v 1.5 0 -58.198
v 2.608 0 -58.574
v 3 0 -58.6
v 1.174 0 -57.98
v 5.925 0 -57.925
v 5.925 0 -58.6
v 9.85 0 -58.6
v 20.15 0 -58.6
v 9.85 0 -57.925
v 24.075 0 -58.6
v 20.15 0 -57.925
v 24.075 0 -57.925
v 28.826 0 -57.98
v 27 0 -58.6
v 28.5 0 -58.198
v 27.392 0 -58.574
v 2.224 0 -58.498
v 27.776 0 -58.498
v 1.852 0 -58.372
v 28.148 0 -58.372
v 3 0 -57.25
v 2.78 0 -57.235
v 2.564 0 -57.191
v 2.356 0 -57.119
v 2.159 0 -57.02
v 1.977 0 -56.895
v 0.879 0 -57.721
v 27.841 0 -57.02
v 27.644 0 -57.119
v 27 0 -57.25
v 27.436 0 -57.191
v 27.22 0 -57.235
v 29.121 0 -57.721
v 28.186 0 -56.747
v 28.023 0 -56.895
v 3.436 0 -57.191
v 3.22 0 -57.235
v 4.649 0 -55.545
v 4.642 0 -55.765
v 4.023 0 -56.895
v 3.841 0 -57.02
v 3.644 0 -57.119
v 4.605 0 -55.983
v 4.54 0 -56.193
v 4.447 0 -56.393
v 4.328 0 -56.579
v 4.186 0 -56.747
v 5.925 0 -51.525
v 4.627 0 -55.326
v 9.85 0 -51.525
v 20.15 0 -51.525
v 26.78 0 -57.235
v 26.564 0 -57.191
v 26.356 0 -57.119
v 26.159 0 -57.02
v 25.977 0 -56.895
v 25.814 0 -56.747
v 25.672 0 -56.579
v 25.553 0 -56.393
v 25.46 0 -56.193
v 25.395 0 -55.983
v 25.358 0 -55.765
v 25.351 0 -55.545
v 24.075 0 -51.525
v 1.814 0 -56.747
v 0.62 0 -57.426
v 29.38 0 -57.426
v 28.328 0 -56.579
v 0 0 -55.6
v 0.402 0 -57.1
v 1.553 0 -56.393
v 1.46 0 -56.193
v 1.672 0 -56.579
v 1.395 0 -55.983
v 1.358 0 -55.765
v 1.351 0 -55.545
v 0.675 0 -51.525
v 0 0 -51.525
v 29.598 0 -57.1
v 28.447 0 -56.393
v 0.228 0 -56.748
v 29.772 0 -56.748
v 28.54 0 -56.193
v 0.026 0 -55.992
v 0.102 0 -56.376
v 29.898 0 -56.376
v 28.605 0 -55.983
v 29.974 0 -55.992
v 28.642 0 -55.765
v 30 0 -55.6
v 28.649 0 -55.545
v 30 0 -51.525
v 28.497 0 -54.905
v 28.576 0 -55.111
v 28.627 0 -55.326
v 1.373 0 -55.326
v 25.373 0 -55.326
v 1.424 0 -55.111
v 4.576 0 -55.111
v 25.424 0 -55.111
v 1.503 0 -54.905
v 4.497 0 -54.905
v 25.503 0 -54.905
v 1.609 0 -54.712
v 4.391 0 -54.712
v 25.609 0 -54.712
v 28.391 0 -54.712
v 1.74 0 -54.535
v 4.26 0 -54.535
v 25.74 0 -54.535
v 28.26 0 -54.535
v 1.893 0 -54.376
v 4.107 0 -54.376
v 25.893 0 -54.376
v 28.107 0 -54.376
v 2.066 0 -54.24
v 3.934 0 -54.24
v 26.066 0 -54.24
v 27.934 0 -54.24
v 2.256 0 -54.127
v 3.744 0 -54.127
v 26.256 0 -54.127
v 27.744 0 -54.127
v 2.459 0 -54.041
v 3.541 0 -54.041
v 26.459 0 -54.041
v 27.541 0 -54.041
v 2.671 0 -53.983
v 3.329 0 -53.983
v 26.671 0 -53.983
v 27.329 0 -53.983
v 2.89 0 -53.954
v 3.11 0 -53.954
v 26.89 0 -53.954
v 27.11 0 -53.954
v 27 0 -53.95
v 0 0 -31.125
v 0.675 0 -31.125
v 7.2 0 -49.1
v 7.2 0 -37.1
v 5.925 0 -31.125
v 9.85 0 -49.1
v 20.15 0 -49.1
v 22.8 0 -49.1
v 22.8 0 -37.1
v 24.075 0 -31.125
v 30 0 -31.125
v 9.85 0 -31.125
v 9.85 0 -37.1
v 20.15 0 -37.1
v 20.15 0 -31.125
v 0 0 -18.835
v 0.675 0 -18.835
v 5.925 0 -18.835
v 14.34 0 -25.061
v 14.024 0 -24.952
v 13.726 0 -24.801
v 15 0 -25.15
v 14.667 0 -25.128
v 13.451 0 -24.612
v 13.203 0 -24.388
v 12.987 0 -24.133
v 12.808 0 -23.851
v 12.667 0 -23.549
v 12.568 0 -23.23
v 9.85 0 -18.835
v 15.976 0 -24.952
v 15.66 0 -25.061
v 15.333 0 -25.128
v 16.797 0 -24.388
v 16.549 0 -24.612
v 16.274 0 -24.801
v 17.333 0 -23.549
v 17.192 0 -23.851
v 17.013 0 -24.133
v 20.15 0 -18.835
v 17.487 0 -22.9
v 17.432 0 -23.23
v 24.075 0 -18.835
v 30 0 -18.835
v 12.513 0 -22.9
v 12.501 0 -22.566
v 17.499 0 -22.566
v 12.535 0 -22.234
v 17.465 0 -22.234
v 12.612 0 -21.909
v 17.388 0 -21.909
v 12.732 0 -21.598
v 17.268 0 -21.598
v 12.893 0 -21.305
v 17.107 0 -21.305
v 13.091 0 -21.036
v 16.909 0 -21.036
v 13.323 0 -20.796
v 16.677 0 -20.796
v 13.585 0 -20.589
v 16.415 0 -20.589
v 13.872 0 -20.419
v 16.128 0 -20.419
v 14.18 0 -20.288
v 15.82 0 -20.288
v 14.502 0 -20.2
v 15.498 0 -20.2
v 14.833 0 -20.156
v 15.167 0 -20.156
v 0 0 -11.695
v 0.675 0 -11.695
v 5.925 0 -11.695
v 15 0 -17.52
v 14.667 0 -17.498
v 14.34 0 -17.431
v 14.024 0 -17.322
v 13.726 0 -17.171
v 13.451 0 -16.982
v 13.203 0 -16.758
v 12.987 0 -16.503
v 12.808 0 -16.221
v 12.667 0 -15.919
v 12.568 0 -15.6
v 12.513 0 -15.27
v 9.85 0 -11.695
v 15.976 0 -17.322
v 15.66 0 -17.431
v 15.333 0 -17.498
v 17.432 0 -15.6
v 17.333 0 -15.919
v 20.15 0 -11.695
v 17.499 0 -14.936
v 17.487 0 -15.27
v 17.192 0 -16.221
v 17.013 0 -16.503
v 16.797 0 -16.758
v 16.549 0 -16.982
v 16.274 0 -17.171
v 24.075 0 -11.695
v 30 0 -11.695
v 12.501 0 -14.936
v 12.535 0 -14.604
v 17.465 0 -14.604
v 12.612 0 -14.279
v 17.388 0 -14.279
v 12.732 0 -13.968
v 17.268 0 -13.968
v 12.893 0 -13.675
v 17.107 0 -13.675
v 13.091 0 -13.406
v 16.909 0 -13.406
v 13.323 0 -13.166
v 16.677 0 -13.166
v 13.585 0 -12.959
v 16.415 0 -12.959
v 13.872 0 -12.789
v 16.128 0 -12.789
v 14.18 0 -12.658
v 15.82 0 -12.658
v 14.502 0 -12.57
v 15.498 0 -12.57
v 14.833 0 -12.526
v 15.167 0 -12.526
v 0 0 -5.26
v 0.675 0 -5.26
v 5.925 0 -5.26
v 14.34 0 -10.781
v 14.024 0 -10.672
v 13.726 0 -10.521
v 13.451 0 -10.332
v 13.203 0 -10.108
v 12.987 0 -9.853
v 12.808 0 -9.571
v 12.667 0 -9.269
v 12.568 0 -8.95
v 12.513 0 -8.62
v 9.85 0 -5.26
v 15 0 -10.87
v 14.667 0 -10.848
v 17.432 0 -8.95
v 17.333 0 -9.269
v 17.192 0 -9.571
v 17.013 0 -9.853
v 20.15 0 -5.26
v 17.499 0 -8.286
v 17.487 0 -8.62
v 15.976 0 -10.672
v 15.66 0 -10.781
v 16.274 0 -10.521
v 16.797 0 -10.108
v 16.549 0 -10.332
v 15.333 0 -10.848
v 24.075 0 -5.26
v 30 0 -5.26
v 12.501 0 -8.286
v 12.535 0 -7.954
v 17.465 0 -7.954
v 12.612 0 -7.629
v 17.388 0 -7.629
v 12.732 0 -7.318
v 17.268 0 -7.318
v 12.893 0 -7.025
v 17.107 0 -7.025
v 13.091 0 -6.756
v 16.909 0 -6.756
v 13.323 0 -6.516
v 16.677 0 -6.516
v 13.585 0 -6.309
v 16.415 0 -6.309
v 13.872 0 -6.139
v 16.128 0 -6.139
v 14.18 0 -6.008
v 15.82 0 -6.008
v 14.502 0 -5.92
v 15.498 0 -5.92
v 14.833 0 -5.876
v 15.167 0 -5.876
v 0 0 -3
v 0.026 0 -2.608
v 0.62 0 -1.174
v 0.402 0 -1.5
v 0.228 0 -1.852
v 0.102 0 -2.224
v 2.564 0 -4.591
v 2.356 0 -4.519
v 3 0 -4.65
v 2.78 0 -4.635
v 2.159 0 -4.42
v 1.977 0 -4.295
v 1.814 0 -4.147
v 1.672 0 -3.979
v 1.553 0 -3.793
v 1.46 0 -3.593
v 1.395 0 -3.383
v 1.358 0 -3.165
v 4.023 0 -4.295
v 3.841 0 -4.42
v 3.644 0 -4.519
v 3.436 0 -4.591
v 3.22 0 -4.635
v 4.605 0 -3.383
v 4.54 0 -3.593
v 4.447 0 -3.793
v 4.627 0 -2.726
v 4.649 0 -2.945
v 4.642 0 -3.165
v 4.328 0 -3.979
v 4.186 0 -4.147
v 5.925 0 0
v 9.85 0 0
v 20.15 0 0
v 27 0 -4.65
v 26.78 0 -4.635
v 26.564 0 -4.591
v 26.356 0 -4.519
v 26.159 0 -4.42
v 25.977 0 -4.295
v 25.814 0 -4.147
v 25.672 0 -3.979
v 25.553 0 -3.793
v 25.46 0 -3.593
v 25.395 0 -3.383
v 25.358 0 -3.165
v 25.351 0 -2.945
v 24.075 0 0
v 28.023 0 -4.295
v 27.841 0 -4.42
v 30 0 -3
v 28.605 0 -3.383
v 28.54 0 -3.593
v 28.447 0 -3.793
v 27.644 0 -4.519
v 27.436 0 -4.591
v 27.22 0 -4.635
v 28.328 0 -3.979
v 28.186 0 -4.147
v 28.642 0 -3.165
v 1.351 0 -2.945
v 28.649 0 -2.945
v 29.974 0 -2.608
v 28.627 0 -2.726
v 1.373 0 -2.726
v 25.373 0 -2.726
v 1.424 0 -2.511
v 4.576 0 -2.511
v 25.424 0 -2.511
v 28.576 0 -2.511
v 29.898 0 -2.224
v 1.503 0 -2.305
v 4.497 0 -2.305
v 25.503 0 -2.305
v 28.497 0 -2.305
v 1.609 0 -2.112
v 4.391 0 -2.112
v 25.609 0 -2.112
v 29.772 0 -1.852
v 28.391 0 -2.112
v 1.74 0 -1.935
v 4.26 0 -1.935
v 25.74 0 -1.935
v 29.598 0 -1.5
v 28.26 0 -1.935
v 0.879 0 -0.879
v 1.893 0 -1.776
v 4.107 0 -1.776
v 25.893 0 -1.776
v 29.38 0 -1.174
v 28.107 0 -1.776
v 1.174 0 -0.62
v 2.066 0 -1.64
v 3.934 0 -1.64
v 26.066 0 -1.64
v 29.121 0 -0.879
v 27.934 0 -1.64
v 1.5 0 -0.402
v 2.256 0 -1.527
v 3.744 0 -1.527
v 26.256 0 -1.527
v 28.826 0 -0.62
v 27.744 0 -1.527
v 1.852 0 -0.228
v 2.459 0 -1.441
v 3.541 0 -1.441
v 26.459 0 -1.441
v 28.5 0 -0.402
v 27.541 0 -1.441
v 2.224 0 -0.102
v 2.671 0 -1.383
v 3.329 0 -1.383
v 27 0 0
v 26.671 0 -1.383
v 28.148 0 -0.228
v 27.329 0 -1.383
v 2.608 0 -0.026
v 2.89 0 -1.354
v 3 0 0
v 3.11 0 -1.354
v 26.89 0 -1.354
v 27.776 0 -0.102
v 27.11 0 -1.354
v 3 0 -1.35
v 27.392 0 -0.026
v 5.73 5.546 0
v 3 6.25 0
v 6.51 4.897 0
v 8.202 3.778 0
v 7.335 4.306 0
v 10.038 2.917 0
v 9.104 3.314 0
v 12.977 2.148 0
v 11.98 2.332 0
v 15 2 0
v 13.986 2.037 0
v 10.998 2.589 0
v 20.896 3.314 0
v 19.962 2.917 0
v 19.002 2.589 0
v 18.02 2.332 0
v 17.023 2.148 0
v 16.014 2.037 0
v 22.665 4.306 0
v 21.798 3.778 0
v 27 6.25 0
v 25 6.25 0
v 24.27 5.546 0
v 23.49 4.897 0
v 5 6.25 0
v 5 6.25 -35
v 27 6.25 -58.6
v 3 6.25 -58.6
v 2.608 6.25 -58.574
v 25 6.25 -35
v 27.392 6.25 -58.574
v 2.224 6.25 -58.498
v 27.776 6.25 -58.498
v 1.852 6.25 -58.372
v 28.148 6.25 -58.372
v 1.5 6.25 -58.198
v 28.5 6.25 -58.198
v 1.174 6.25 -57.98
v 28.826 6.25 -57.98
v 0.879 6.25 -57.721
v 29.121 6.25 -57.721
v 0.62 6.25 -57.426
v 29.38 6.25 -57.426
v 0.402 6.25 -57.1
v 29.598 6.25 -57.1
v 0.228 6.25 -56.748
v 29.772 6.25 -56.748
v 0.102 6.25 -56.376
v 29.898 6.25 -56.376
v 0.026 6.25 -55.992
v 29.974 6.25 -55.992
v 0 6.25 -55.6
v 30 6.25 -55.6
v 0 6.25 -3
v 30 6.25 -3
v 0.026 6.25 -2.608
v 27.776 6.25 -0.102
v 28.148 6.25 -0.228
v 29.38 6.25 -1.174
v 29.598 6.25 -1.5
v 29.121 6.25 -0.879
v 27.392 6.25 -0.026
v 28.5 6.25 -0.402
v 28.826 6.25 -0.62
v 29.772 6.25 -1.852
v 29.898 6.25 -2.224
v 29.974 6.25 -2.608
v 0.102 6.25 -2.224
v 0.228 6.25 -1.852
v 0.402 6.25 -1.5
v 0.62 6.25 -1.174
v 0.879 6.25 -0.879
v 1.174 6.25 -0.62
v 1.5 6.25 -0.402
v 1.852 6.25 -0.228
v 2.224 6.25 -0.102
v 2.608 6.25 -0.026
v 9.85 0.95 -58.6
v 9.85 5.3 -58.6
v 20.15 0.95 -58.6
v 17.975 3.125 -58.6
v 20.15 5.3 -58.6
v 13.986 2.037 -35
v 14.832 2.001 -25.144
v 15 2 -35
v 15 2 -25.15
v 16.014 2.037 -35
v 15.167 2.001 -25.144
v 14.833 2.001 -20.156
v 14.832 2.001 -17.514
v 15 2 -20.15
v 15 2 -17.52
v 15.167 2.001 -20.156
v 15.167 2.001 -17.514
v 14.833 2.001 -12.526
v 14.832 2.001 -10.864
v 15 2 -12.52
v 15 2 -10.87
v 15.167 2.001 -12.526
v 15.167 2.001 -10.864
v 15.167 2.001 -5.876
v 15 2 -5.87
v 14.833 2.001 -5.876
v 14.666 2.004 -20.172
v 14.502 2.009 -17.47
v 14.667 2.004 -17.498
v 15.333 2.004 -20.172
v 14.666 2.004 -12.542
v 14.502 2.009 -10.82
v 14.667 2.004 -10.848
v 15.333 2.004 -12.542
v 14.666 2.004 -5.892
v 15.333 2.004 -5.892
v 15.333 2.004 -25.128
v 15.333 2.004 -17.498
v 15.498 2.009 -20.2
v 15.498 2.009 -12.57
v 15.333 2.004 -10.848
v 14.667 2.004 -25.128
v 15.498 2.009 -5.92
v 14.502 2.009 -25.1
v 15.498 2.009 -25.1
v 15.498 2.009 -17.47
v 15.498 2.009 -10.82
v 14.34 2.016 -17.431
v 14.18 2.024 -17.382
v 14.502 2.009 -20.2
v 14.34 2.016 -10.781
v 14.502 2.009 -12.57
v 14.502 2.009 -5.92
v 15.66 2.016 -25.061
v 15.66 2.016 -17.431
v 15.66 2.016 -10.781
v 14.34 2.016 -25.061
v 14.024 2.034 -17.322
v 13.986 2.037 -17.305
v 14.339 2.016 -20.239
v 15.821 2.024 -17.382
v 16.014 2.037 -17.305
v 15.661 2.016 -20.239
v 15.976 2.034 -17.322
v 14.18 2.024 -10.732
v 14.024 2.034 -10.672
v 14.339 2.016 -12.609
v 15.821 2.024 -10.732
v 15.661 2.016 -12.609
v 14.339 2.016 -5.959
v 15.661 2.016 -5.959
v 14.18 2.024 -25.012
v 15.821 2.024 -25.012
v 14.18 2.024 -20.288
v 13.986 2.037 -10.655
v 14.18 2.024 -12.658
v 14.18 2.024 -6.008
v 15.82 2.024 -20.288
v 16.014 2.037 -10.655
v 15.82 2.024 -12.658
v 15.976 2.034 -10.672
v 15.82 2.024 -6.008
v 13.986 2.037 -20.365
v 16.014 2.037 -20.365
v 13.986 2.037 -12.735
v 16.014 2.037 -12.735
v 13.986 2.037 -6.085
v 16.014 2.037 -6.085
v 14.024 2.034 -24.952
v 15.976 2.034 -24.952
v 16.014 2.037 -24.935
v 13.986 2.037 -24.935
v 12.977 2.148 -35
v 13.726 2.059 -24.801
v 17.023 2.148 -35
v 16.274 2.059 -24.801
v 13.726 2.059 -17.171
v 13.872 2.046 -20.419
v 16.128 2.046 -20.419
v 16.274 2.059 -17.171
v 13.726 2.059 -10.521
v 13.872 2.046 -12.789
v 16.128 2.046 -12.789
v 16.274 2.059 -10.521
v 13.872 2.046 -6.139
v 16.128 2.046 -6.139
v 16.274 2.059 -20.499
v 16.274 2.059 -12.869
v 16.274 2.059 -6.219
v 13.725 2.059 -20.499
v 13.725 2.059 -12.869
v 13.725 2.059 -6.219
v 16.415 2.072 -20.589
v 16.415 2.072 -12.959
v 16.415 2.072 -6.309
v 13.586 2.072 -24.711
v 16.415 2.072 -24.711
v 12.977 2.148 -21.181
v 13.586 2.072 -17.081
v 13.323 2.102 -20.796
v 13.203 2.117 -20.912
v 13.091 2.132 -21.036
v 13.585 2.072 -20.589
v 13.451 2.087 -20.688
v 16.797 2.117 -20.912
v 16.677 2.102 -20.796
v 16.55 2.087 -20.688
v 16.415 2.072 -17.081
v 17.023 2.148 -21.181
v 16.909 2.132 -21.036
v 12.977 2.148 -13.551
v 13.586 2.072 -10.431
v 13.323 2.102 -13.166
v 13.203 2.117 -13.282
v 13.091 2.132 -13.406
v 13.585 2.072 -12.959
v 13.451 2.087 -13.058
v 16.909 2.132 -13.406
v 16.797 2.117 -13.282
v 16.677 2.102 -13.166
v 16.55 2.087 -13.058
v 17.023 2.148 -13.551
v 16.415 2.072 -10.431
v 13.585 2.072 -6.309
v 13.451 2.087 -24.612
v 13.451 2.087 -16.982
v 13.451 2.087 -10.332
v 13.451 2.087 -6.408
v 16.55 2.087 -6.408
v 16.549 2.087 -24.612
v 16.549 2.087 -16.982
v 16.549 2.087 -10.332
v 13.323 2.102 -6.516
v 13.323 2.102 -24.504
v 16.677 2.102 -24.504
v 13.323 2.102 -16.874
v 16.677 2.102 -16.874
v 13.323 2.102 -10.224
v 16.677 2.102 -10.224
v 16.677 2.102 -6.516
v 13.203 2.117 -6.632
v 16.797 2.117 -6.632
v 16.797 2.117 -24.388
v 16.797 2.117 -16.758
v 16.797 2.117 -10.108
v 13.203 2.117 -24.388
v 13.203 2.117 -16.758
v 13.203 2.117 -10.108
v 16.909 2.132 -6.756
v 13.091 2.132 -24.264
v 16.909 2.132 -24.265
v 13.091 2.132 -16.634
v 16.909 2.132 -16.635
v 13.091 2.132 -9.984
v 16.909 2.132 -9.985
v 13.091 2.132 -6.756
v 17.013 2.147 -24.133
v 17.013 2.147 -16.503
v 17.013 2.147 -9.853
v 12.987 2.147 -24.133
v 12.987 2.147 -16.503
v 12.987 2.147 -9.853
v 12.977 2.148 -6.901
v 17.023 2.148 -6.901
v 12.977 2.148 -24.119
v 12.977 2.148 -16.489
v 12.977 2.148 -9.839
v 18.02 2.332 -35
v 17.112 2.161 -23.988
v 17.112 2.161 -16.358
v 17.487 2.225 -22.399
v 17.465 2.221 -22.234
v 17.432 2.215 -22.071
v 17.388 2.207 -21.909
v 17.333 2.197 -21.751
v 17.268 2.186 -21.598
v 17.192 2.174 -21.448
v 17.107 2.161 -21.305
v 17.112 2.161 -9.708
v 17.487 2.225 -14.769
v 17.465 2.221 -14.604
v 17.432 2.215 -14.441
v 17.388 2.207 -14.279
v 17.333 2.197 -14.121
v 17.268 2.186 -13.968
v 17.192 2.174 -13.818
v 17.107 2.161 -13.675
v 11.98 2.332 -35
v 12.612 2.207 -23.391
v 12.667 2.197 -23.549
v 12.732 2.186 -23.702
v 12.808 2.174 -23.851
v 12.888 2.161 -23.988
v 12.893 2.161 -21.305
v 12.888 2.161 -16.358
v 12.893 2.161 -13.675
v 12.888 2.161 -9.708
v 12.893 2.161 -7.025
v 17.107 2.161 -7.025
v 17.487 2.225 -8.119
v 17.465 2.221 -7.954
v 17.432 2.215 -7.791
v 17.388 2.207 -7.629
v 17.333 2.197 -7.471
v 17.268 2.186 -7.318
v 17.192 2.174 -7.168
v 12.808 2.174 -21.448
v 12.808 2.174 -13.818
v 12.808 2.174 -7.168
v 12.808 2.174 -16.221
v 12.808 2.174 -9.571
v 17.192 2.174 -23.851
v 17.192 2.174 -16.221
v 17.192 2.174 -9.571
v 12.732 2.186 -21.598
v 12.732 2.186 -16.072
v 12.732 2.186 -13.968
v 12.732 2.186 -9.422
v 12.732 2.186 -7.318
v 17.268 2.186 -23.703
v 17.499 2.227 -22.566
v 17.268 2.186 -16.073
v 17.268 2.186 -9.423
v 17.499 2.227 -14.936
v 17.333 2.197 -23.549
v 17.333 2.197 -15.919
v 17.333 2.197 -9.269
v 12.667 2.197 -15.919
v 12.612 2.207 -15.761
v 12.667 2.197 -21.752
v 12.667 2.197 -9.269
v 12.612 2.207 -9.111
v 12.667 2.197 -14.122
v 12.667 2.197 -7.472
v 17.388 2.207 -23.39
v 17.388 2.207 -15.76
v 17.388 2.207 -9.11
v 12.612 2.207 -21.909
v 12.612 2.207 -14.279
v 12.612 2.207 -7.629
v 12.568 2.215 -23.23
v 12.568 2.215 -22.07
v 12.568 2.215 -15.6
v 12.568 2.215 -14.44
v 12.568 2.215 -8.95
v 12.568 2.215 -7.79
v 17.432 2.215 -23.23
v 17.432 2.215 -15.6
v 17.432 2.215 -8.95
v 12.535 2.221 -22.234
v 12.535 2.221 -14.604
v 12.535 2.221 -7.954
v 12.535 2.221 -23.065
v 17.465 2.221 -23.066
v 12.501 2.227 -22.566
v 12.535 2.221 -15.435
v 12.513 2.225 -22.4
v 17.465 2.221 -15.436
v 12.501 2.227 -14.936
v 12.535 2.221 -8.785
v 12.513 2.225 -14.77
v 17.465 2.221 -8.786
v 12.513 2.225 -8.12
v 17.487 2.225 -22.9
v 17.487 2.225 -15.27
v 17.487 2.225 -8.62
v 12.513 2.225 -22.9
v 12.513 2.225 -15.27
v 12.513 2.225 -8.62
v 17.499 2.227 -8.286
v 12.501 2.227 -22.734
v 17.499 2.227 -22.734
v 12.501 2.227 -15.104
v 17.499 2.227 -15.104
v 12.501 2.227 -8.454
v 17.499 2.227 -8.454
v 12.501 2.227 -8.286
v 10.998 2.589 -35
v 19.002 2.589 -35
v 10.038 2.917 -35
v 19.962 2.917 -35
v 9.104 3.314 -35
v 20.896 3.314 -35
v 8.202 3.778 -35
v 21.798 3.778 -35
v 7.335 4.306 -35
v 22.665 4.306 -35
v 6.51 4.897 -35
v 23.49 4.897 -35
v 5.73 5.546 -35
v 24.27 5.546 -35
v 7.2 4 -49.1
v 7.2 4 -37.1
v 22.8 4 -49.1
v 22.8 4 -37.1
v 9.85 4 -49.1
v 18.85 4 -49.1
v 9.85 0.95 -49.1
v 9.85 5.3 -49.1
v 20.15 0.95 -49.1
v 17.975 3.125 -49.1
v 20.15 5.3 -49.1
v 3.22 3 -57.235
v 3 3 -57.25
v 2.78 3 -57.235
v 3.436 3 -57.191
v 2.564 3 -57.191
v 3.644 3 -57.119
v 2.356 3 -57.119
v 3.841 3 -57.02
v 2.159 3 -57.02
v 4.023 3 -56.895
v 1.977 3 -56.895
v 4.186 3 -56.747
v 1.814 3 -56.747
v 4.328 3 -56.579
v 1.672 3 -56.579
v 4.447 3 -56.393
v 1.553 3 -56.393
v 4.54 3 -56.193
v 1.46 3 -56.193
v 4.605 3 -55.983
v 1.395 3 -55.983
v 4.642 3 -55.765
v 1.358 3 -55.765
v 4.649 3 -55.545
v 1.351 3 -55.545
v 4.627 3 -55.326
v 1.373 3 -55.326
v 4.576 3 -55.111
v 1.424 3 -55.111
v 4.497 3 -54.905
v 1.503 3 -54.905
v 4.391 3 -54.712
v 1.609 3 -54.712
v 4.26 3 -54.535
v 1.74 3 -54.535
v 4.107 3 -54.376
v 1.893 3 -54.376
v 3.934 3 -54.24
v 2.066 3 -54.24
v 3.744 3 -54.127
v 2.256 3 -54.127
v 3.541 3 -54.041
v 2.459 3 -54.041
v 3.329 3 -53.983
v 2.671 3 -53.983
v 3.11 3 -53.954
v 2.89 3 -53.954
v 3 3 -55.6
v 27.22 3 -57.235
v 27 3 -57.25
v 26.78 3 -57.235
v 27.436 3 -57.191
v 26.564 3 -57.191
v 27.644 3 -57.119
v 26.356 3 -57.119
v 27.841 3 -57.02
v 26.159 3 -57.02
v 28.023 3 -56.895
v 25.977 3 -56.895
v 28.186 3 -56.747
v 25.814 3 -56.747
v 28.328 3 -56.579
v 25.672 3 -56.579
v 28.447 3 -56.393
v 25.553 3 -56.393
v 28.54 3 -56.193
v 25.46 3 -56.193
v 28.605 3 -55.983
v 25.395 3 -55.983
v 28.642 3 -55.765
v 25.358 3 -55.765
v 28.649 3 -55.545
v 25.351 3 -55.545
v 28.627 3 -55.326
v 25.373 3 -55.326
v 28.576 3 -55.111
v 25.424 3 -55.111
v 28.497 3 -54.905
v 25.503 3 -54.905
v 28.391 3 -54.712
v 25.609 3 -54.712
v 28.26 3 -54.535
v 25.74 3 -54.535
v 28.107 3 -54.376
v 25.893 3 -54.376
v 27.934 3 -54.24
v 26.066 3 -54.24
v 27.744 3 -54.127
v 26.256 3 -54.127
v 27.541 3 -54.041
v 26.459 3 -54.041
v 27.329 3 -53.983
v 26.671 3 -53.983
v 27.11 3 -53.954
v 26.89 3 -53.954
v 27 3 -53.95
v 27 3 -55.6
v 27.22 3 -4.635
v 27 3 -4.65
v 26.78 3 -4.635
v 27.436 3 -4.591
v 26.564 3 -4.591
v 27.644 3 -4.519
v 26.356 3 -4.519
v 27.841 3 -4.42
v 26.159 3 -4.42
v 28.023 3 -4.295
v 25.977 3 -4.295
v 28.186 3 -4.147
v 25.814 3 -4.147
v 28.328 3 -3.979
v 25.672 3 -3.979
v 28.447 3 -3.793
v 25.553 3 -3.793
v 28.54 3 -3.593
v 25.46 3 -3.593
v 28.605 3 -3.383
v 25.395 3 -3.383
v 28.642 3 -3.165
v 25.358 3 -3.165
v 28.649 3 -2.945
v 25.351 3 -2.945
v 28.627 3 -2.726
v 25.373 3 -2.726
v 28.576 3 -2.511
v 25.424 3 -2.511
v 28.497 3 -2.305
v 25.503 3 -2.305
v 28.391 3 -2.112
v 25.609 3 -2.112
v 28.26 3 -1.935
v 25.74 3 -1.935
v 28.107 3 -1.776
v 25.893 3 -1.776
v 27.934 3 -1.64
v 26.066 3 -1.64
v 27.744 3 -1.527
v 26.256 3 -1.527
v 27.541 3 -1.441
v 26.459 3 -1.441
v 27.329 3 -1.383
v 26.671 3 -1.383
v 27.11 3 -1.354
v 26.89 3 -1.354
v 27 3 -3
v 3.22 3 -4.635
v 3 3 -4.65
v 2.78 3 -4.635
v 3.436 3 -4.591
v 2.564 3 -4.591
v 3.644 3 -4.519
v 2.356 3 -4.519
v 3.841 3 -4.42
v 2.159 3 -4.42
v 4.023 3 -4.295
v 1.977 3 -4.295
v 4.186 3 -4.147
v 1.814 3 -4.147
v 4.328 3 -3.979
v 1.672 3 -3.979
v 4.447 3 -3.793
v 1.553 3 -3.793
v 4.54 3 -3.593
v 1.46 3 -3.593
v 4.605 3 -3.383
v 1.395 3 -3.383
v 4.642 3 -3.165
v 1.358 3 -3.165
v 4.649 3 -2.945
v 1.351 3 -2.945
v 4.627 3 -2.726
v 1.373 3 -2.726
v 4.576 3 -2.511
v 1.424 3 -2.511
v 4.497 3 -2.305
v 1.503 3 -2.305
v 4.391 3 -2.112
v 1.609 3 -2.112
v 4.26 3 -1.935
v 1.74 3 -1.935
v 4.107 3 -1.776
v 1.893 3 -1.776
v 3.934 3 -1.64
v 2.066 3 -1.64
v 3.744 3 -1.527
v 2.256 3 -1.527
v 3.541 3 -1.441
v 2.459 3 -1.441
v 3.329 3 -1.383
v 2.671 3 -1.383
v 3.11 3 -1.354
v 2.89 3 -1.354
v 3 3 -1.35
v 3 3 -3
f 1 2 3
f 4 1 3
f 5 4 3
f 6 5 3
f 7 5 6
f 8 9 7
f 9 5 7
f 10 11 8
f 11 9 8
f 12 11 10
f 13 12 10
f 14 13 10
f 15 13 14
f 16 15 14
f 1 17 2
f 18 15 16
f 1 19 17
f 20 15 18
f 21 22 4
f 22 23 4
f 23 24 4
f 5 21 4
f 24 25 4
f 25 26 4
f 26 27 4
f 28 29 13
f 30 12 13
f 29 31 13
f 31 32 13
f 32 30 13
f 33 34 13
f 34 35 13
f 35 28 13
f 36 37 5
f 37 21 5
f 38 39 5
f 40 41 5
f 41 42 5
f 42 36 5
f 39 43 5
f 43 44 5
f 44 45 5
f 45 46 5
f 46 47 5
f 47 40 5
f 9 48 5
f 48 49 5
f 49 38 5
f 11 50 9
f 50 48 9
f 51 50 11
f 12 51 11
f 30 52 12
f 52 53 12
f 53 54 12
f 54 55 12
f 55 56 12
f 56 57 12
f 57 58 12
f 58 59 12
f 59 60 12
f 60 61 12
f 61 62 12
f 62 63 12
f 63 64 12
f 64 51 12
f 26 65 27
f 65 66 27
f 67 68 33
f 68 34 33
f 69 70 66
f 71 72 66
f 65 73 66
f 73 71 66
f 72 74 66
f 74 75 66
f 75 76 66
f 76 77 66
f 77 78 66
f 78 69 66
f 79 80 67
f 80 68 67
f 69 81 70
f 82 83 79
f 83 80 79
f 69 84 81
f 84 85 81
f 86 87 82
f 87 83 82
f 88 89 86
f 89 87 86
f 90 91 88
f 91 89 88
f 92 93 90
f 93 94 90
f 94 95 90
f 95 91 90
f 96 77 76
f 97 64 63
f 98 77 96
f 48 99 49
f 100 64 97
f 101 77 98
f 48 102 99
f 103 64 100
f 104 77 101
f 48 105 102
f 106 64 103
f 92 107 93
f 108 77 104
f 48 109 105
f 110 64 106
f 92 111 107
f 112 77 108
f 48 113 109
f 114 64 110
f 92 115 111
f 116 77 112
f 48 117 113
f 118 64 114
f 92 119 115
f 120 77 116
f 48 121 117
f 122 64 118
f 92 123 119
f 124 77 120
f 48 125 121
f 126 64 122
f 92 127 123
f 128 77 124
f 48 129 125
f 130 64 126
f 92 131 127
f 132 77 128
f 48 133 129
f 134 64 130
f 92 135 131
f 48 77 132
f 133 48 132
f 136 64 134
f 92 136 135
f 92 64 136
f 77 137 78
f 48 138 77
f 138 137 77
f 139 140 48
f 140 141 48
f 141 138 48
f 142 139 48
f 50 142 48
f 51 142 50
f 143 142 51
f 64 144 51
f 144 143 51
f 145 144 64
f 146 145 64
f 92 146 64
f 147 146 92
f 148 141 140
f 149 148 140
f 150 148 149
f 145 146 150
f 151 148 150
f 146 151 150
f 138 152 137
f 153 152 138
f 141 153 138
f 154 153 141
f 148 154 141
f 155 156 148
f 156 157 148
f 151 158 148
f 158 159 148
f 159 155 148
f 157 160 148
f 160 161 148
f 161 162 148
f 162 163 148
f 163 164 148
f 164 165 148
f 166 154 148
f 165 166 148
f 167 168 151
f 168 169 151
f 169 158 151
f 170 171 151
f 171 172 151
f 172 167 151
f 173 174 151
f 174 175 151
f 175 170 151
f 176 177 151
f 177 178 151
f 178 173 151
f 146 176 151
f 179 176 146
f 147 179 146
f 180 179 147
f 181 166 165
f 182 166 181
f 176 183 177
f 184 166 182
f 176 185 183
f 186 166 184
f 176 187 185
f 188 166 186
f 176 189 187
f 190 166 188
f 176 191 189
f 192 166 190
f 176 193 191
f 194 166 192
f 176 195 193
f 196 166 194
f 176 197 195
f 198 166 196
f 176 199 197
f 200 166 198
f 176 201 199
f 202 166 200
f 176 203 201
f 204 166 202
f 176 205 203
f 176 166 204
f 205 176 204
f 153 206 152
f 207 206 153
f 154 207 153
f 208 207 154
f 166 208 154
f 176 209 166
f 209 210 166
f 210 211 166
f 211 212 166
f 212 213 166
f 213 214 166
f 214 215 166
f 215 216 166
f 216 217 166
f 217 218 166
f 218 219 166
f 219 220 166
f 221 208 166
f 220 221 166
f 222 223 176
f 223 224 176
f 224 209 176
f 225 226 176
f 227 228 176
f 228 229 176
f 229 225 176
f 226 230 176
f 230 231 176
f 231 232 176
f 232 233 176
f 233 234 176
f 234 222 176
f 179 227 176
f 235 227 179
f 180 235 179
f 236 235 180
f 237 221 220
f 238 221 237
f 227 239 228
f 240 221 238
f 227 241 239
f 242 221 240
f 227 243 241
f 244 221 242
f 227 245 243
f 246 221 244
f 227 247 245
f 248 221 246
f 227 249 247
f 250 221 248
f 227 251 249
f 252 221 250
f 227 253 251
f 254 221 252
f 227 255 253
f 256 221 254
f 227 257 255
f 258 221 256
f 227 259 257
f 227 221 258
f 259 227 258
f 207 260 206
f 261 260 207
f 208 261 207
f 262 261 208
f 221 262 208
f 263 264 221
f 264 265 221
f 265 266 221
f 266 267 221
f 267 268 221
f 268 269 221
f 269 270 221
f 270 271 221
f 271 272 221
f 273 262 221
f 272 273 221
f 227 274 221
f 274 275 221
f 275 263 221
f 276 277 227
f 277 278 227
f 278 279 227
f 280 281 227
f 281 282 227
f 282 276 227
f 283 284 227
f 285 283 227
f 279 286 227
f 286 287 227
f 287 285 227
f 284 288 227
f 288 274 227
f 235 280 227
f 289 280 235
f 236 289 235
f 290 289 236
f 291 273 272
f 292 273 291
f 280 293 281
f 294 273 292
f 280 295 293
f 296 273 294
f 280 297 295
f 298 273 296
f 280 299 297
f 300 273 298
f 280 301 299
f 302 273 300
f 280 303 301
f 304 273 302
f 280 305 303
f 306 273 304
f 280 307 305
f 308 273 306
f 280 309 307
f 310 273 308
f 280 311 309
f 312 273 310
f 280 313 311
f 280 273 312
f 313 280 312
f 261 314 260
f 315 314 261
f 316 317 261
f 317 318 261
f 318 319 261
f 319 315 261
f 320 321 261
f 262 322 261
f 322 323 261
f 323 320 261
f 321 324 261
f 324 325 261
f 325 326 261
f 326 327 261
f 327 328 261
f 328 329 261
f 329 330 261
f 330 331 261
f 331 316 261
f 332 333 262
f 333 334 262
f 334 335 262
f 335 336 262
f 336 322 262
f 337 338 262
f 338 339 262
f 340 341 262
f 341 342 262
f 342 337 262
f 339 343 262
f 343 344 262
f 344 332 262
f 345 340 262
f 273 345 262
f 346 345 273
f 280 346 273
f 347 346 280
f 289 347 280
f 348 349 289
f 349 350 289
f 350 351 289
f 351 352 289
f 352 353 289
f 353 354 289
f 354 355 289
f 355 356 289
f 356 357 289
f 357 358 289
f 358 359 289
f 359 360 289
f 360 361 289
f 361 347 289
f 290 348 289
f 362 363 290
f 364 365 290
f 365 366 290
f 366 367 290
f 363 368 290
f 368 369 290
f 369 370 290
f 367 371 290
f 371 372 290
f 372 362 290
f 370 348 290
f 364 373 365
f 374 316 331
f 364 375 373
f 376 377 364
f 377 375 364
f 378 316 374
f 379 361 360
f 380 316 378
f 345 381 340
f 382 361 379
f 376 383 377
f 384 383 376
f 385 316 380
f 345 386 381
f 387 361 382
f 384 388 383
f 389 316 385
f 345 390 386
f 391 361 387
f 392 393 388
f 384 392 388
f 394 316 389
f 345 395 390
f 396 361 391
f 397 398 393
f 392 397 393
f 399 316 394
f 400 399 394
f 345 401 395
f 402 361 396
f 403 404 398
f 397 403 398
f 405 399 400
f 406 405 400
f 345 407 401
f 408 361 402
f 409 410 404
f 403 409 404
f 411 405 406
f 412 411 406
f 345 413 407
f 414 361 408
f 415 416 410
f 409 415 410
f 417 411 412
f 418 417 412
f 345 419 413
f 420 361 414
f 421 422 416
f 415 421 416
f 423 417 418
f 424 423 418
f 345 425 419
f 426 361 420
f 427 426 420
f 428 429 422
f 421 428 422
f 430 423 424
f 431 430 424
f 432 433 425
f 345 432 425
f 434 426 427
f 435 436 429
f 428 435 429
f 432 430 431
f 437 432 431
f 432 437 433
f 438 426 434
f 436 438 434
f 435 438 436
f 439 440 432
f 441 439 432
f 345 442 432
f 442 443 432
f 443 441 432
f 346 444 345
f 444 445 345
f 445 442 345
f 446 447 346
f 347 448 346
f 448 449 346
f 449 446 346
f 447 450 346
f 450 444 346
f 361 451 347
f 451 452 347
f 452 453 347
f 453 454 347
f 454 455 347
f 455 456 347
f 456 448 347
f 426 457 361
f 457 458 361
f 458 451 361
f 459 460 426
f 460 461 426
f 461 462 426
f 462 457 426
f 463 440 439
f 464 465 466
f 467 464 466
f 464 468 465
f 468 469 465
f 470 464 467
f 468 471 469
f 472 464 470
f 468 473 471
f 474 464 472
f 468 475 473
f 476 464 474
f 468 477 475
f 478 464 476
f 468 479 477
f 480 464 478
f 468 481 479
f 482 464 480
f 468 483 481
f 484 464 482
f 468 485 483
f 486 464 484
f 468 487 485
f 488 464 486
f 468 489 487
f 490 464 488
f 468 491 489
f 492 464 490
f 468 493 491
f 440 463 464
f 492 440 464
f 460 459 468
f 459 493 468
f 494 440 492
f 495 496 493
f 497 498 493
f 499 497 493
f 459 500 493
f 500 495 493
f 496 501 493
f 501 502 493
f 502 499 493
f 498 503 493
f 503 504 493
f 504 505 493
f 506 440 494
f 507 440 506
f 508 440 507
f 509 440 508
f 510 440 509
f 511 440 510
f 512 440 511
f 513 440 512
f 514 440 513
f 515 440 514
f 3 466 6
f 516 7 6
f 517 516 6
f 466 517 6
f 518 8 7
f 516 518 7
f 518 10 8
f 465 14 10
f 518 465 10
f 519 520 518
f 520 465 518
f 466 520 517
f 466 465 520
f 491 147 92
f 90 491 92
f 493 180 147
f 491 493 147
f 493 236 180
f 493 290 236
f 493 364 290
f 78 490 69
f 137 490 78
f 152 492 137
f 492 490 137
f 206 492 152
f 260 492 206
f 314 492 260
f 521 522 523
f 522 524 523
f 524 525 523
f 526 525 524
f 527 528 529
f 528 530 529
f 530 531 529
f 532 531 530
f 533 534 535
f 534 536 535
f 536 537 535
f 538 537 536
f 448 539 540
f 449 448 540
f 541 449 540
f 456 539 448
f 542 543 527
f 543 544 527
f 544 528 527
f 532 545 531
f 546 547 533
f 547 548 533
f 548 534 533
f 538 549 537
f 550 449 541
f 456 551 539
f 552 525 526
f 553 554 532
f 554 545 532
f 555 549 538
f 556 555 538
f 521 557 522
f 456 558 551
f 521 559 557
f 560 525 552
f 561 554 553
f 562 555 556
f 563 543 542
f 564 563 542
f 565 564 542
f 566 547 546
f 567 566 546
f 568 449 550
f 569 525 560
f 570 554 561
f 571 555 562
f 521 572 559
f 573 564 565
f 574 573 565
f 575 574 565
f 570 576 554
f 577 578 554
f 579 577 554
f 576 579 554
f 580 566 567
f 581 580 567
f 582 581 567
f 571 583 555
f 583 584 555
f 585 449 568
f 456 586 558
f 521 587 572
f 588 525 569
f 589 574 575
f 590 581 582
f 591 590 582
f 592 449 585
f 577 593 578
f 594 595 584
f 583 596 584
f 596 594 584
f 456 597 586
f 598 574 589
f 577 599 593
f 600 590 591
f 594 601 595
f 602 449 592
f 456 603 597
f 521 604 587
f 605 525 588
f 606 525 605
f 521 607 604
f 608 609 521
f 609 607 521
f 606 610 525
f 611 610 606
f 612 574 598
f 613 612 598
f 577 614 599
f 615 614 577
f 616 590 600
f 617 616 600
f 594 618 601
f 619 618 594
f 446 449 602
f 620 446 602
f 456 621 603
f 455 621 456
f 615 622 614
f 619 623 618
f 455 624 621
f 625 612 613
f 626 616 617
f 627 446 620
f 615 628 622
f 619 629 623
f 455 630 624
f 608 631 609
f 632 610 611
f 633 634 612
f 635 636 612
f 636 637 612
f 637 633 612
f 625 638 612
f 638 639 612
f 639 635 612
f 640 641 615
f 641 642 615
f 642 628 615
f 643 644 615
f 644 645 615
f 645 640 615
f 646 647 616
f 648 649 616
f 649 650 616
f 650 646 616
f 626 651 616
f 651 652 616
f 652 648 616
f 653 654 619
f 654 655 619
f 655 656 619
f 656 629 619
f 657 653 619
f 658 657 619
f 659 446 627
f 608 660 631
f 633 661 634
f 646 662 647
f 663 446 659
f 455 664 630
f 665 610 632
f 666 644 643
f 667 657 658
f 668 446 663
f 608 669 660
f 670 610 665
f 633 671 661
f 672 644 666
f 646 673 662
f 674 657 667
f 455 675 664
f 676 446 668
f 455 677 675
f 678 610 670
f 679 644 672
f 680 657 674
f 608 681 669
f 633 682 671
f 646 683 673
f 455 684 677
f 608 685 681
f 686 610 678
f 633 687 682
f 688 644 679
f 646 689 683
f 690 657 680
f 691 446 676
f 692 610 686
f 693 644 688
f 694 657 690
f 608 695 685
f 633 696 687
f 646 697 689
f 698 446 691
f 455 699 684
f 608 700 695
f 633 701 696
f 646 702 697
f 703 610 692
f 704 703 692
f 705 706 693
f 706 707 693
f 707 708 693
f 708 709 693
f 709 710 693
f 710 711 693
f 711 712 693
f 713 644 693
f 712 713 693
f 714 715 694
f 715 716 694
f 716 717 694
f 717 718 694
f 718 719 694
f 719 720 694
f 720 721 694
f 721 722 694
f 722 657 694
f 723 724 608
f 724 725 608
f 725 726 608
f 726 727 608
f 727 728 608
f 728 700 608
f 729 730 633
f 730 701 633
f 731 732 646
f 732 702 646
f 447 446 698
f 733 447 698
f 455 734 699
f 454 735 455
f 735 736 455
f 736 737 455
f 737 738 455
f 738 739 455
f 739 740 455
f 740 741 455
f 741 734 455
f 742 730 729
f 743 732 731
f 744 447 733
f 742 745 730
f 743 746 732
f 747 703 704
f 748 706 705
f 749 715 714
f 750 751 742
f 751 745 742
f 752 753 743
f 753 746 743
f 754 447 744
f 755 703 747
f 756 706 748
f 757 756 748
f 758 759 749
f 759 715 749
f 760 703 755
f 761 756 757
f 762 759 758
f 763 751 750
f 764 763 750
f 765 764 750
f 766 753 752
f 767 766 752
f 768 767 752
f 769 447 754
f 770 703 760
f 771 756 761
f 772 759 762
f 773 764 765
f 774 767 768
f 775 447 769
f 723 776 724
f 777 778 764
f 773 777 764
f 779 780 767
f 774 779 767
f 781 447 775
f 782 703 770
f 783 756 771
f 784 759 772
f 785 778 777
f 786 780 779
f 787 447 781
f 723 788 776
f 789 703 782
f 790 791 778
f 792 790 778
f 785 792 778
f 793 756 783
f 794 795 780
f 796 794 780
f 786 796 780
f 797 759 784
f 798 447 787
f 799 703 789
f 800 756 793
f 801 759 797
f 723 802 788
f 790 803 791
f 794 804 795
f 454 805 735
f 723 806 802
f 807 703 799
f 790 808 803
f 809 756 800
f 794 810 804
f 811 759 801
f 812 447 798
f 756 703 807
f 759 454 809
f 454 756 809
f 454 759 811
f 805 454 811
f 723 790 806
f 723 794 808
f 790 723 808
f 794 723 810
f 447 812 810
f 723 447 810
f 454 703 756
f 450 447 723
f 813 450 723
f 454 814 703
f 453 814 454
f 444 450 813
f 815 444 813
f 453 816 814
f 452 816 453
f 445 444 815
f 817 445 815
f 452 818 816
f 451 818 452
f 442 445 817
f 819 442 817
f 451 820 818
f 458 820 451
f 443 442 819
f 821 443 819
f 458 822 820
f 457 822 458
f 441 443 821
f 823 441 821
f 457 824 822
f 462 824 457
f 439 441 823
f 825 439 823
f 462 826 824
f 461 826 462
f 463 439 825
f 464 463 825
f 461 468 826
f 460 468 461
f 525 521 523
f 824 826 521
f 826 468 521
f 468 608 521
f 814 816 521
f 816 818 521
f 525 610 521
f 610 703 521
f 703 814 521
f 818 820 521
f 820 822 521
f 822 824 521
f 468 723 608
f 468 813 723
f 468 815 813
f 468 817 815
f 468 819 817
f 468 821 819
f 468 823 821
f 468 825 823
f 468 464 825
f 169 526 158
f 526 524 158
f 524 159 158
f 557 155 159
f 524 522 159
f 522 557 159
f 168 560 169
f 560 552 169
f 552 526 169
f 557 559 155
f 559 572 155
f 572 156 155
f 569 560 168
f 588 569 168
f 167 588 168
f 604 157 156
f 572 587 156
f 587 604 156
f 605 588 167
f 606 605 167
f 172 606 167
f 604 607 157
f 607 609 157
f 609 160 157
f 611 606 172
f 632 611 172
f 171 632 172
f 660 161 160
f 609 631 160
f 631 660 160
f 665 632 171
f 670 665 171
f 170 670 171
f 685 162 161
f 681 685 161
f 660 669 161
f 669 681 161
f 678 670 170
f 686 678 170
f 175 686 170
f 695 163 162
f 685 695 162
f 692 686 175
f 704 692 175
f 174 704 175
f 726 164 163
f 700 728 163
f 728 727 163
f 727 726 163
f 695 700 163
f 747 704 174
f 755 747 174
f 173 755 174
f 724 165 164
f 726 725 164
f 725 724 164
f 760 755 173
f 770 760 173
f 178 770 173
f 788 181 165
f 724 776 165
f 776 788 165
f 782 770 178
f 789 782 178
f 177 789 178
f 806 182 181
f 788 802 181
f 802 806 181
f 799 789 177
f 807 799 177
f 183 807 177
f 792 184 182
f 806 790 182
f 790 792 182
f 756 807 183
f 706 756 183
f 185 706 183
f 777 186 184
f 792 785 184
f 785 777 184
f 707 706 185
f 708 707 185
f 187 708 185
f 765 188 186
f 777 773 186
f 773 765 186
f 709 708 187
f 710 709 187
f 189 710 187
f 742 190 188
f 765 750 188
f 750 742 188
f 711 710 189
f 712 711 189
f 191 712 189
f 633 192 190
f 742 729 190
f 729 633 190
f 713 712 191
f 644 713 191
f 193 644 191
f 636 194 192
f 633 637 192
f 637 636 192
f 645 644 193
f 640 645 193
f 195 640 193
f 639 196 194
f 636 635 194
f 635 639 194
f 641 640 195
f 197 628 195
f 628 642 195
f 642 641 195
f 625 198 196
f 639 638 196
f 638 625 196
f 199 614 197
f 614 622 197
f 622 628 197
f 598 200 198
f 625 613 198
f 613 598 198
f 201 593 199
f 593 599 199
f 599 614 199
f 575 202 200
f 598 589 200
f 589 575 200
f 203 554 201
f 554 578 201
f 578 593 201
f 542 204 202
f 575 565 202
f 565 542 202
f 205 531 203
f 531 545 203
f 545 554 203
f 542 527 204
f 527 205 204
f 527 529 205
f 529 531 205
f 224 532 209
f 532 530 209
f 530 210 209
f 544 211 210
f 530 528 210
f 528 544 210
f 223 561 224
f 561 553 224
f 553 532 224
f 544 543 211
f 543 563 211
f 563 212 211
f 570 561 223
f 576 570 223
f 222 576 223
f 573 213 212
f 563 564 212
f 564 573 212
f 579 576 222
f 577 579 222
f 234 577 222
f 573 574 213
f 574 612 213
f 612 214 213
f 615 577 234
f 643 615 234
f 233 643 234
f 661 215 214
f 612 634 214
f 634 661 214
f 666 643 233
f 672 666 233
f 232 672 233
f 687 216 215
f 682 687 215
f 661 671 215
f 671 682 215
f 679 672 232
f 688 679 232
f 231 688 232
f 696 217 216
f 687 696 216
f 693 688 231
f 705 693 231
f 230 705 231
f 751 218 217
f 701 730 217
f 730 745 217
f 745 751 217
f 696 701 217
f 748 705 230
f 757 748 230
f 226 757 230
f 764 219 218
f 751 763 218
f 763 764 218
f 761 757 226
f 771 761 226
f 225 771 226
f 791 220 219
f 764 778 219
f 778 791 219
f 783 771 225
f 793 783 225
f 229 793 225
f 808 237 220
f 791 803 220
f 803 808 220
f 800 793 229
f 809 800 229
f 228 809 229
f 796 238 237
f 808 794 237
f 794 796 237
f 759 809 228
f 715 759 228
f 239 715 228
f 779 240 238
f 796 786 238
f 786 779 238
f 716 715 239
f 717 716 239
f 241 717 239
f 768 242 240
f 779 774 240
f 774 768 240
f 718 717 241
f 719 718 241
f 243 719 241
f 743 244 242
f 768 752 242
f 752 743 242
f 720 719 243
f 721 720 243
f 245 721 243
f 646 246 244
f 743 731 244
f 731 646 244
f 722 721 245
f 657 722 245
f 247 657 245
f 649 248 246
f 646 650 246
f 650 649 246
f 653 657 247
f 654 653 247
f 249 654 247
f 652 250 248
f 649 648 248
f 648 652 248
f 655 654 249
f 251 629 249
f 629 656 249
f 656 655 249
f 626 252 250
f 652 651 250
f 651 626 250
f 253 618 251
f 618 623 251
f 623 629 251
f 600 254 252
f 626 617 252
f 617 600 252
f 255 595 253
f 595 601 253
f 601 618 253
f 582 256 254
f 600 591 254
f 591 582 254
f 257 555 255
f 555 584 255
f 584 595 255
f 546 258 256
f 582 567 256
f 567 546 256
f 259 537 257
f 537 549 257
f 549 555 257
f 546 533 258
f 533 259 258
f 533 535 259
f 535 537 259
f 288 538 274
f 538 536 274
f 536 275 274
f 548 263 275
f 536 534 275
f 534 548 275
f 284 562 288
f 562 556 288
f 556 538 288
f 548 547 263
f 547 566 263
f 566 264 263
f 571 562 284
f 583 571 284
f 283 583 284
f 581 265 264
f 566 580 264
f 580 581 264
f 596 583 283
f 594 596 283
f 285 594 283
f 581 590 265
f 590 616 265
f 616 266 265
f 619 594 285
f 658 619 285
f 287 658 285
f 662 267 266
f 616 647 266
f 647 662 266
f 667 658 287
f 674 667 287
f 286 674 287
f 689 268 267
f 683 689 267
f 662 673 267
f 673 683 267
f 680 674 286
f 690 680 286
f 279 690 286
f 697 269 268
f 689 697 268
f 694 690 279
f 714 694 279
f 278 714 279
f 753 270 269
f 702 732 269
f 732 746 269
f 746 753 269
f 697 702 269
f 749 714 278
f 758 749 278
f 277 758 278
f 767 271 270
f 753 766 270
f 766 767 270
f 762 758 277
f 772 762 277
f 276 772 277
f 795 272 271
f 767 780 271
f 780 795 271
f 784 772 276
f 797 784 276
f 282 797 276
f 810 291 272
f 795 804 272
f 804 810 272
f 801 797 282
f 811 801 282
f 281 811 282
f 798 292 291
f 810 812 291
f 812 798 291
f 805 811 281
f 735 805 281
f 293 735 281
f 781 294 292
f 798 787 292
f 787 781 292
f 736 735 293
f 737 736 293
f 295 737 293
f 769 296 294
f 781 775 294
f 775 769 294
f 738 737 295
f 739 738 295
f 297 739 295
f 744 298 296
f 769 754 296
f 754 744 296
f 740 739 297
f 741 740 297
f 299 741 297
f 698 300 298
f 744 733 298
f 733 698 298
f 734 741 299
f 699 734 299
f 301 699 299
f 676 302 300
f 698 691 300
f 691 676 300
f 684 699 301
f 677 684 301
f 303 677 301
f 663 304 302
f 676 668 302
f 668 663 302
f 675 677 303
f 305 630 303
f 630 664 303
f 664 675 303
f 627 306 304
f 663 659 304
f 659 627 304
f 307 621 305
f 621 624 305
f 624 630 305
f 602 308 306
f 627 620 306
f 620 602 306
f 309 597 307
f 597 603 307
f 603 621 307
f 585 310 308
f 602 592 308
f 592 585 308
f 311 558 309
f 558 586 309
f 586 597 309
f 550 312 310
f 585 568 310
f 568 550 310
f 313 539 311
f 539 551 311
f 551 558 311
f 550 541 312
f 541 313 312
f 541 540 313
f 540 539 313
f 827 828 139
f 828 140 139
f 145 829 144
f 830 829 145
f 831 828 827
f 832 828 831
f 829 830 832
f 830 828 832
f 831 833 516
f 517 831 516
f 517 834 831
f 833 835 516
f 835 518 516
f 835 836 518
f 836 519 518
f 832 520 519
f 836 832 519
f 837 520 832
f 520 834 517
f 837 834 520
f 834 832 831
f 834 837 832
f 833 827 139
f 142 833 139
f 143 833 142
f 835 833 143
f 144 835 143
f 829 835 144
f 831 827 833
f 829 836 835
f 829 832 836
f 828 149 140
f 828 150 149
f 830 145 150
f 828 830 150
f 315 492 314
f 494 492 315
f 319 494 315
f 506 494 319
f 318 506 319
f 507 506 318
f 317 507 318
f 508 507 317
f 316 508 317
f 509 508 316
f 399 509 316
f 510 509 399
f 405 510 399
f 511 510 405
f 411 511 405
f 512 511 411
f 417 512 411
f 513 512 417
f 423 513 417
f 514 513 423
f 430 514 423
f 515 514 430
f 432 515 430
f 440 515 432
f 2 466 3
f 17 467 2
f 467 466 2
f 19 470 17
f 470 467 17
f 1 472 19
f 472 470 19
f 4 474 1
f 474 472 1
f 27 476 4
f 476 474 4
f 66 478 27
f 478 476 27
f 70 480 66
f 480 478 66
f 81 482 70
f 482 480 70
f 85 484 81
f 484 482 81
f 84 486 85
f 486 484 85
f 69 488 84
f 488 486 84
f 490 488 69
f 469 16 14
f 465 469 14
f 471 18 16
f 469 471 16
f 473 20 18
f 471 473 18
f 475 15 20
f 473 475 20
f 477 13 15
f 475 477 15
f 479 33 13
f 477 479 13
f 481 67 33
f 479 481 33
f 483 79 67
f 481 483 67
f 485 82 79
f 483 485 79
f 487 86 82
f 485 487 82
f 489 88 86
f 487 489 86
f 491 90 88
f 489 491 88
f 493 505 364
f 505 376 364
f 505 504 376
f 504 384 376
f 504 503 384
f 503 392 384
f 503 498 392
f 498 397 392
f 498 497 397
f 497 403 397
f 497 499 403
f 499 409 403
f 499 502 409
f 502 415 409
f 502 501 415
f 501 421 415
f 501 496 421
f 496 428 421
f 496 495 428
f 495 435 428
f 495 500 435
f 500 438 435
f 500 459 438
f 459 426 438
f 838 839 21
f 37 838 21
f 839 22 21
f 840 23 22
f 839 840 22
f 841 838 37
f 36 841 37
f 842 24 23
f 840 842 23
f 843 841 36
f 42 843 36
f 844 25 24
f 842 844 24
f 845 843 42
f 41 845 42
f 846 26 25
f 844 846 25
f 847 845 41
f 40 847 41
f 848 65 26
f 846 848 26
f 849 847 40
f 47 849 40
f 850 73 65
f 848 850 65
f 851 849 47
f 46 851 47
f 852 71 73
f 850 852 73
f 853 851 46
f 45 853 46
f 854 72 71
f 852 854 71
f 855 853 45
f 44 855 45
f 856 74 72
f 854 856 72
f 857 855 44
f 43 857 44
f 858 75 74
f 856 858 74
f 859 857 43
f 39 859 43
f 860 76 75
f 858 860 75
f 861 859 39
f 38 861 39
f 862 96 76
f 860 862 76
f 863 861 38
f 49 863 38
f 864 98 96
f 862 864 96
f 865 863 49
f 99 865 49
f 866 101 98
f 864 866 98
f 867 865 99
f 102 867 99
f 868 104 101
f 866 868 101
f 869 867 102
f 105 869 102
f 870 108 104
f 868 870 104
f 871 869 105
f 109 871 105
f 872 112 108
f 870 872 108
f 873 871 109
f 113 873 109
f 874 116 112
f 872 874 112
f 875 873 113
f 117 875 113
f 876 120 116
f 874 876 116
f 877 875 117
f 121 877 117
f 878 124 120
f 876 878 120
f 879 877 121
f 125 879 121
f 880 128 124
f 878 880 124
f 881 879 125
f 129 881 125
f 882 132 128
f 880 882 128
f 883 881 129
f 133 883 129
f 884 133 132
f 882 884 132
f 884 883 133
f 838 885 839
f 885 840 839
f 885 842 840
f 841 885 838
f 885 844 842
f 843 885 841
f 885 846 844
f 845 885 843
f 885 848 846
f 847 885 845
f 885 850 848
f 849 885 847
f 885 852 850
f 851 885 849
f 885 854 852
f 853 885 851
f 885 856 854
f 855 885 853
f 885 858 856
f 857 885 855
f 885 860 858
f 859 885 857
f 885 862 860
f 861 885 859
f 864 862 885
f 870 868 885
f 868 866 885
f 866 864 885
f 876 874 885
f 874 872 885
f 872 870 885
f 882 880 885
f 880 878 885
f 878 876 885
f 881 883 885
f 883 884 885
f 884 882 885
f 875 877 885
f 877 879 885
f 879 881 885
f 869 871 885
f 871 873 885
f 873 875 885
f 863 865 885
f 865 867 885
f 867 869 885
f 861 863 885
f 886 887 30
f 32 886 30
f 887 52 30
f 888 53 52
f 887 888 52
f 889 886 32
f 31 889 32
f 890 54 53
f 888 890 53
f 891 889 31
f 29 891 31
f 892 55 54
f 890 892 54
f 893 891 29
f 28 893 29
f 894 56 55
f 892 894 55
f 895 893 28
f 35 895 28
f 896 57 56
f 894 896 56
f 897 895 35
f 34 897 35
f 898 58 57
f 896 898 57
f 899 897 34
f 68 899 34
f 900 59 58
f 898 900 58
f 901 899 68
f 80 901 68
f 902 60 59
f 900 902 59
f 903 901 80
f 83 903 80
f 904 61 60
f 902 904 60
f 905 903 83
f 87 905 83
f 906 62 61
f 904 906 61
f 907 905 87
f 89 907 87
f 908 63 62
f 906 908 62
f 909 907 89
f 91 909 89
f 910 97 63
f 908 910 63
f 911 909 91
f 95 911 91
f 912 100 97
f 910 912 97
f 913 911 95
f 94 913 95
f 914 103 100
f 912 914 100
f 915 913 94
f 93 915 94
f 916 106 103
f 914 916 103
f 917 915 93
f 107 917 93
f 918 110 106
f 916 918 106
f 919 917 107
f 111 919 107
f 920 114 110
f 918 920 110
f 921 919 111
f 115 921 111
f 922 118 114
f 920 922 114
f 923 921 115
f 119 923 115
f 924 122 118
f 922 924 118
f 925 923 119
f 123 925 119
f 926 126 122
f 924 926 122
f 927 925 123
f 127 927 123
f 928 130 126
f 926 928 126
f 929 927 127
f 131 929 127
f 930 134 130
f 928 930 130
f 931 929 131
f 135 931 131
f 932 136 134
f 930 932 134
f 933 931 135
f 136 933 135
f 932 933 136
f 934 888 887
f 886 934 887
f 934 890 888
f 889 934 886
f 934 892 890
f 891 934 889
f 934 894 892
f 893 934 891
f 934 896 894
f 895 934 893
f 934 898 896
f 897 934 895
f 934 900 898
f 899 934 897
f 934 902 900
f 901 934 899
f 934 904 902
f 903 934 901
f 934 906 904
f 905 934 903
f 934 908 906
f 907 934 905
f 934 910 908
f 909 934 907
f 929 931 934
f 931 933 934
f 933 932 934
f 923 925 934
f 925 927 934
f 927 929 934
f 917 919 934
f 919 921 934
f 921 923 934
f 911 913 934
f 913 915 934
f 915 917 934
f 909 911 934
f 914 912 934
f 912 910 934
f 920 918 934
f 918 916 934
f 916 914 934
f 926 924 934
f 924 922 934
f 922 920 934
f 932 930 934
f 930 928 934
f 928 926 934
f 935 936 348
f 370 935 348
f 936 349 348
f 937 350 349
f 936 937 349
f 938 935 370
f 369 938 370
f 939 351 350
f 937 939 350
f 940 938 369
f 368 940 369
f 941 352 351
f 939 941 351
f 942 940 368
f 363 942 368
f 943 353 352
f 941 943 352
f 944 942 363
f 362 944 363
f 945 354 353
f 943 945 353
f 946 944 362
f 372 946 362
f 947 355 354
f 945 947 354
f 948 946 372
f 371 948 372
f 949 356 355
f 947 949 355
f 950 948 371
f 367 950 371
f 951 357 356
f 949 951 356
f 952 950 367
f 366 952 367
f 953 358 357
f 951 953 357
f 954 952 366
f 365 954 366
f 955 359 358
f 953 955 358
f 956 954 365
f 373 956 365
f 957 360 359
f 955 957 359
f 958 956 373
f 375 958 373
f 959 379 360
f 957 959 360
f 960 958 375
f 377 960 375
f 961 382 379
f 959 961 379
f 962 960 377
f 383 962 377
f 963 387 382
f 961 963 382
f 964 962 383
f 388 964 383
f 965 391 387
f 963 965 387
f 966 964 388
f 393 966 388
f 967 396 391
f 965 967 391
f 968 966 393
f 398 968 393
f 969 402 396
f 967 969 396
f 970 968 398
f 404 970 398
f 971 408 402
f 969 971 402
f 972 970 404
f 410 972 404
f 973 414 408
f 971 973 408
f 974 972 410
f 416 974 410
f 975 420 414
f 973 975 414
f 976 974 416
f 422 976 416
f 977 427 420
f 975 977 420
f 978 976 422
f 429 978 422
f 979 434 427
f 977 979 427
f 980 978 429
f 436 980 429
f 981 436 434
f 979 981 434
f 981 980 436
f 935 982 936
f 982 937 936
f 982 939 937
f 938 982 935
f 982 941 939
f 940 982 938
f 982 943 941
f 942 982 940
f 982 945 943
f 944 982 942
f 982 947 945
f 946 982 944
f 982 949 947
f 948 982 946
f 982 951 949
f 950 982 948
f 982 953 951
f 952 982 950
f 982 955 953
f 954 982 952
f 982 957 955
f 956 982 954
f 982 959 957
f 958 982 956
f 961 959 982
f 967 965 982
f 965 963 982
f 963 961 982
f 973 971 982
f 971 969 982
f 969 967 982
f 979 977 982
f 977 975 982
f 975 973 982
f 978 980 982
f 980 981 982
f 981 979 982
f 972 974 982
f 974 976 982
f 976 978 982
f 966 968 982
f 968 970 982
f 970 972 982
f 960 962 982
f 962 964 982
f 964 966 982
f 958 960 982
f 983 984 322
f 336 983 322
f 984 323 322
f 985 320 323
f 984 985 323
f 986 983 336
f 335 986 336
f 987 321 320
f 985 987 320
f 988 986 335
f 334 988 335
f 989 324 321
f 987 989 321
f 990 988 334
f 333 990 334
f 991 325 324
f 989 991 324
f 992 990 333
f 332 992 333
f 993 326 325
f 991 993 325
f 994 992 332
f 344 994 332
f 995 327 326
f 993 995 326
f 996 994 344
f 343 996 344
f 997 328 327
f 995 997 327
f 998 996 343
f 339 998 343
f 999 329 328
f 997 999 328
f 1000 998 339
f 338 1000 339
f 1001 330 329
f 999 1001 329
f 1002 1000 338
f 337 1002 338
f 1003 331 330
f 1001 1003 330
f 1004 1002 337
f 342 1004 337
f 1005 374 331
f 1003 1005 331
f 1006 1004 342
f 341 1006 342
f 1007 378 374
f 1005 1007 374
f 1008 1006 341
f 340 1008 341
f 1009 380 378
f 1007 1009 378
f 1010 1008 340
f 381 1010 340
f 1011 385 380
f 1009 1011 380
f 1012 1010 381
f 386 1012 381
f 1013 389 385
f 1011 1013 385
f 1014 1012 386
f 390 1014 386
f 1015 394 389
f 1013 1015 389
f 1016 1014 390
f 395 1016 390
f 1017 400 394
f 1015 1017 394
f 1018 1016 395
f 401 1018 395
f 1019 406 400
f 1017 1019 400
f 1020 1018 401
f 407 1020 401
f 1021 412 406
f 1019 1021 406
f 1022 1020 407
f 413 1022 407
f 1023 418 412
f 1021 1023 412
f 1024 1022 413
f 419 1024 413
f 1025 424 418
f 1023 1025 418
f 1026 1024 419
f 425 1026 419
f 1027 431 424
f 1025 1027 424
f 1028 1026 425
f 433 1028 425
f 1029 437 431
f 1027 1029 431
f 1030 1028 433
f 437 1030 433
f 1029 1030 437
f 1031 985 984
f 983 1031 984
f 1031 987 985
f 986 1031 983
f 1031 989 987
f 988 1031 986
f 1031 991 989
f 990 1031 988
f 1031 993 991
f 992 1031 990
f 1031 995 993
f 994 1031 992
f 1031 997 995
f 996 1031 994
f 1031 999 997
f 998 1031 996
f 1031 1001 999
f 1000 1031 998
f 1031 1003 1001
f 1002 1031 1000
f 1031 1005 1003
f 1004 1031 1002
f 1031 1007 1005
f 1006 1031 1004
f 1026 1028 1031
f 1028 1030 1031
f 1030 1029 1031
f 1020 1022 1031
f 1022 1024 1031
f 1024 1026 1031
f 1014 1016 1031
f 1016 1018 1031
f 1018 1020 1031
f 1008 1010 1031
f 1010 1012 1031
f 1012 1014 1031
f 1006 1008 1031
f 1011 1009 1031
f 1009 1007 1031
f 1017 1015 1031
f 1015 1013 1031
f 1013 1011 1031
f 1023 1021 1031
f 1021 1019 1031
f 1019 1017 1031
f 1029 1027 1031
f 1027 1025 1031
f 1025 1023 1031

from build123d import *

# Parameters (mm, degrees)
SKETCH1_W               = 58.6
SKETCH1_H               = 6.25
BOSS_EXTRUDE1_DEPTH     = 30
CUT_EXTRUDE1_DEPTH      = 67.128832592
CUT_EXTRUDE1_DEPTH_BACK = 35
SKETCH4_R               = 2.5
SKETCH4_W               = 15.6
SKETCH4_H               = 10.5
CUT_EXTRUDE2_DEPTH      = 4
CUT_EXTRUDE3_DEPTH      = 9.5
SKETCH6_W               = 15.6
SKETCH6_H               = 1
SKETCH6_H_2             = 0.5
CUT_EXTRUDE4_DEPTH      = 4
FILLET1_R               = 3
SKETCH7_R               = 1.65
CUT_EXTRUDE5_DEPTH      = 3


with BuildPart() as part:
    # Sketch1 → Boss-Extrude1 (new body)
    with BuildSketch(Plane(origin=(0, 0, 0), x_dir=(0, 0, -1), z_dir=(1, 0, 0))):
        with Locations((29.3, 3.125)):
            Rectangle(SKETCH1_W, SKETCH1_H)
    extrude(amount=BOSS_EXTRUDE1_DEPTH)

    # Sketch2 → Cut-Extrude1 (cut, two sides: drawn at the far end of the back side and taken through both)
    with BuildSketch(Plane.XY.offset(-CUT_EXTRUDE1_DEPTH_BACK)):
        with BuildLine():
            Line((5, 6.25), (25, 6.25))
            ThreePointArc((25, 6.25), (15, 2), (5, 6.25))
        make_face()
    extrude(amount=CUT_EXTRUDE1_DEPTH + CUT_EXTRUDE1_DEPTH_BACK, mode=Mode.SUBTRACT)

    # Sketch4 → Cut-Extrude2 (cut)
    with BuildSketch(Plane.XZ):
        with Locations(Location((15, -8.37, 0), (0, 0, 270))):
            Circle(SKETCH4_R)
        with Locations(Location((15, -15.02, 0), (0, 0, 270))):
            Circle(SKETCH4_R)
        with Locations(Location((15, -22.65, 0), (0, 0, 270))):
            Circle(SKETCH4_R)
        with Locations((15, -43.35)):
            Rectangle(SKETCH4_W, SKETCH4_H)
    extrude(amount=-CUT_EXTRUDE2_DEPTH, mode=Mode.SUBTRACT)

    # Sketch5 → Cut-Extrude3 (cut)
    with BuildSketch(Plane(origin=(0, 0, -58.6), x_dir=(-1, 0, 0), z_dir=(0, 0, -1))):
        Polygon((-9.85, 0.95), (-20.15, 0.95), (-17.975, 3.125), (-20.15, 5.3), (-9.85, 5.3), align=None)
    extrude(amount=-CUT_EXTRUDE3_DEPTH, mode=Mode.SUBTRACT)

    # Sketch6 → Cut-Extrude4 (cut)
    with BuildSketch(Plane.XZ):
        with Locations((15, -37.6)):
            Rectangle(SKETCH6_W, SKETCH6_H)
        with Locations((15, -48.85)):
            Rectangle(SKETCH6_W, SKETCH6_H_2)
    extrude(amount=-CUT_EXTRUDE4_DEPTH, mode=Mode.SUBTRACT)

    # Fillet1
    fillet1_edges = [part.edges().sort_by_distance(p)[0] for p in [
        (30, 3.125, -58.6),
        (30, 3.125, 0),
        (0, 3.125, -58.6),
        (0, 3.125, 0),
    ]]
    fillet(fillet1_edges, radius=FILLET1_R)

    # Sketch7 → Cut-Extrude5 (cut)
    with BuildSketch(Plane.XZ):
        with Locations(Location((3, -55.6, 0), (0, 0, 270))):
            Circle(SKETCH7_R)
        with Locations(Location((27, -55.6, 0), (0, 0, 90))):
            Circle(SKETCH7_R)
        with Locations(Location((27, -3, 0), (0, 0, 270))):
            Circle(SKETCH7_R)
        with Locations(Location((3, -3, 0), (0, 0, 90))):
            Circle(SKETCH7_R)
    extrude(amount=-CUT_EXTRUDE5_DEPTH, mode=Mode.SUBTRACT)


solid = part.part
